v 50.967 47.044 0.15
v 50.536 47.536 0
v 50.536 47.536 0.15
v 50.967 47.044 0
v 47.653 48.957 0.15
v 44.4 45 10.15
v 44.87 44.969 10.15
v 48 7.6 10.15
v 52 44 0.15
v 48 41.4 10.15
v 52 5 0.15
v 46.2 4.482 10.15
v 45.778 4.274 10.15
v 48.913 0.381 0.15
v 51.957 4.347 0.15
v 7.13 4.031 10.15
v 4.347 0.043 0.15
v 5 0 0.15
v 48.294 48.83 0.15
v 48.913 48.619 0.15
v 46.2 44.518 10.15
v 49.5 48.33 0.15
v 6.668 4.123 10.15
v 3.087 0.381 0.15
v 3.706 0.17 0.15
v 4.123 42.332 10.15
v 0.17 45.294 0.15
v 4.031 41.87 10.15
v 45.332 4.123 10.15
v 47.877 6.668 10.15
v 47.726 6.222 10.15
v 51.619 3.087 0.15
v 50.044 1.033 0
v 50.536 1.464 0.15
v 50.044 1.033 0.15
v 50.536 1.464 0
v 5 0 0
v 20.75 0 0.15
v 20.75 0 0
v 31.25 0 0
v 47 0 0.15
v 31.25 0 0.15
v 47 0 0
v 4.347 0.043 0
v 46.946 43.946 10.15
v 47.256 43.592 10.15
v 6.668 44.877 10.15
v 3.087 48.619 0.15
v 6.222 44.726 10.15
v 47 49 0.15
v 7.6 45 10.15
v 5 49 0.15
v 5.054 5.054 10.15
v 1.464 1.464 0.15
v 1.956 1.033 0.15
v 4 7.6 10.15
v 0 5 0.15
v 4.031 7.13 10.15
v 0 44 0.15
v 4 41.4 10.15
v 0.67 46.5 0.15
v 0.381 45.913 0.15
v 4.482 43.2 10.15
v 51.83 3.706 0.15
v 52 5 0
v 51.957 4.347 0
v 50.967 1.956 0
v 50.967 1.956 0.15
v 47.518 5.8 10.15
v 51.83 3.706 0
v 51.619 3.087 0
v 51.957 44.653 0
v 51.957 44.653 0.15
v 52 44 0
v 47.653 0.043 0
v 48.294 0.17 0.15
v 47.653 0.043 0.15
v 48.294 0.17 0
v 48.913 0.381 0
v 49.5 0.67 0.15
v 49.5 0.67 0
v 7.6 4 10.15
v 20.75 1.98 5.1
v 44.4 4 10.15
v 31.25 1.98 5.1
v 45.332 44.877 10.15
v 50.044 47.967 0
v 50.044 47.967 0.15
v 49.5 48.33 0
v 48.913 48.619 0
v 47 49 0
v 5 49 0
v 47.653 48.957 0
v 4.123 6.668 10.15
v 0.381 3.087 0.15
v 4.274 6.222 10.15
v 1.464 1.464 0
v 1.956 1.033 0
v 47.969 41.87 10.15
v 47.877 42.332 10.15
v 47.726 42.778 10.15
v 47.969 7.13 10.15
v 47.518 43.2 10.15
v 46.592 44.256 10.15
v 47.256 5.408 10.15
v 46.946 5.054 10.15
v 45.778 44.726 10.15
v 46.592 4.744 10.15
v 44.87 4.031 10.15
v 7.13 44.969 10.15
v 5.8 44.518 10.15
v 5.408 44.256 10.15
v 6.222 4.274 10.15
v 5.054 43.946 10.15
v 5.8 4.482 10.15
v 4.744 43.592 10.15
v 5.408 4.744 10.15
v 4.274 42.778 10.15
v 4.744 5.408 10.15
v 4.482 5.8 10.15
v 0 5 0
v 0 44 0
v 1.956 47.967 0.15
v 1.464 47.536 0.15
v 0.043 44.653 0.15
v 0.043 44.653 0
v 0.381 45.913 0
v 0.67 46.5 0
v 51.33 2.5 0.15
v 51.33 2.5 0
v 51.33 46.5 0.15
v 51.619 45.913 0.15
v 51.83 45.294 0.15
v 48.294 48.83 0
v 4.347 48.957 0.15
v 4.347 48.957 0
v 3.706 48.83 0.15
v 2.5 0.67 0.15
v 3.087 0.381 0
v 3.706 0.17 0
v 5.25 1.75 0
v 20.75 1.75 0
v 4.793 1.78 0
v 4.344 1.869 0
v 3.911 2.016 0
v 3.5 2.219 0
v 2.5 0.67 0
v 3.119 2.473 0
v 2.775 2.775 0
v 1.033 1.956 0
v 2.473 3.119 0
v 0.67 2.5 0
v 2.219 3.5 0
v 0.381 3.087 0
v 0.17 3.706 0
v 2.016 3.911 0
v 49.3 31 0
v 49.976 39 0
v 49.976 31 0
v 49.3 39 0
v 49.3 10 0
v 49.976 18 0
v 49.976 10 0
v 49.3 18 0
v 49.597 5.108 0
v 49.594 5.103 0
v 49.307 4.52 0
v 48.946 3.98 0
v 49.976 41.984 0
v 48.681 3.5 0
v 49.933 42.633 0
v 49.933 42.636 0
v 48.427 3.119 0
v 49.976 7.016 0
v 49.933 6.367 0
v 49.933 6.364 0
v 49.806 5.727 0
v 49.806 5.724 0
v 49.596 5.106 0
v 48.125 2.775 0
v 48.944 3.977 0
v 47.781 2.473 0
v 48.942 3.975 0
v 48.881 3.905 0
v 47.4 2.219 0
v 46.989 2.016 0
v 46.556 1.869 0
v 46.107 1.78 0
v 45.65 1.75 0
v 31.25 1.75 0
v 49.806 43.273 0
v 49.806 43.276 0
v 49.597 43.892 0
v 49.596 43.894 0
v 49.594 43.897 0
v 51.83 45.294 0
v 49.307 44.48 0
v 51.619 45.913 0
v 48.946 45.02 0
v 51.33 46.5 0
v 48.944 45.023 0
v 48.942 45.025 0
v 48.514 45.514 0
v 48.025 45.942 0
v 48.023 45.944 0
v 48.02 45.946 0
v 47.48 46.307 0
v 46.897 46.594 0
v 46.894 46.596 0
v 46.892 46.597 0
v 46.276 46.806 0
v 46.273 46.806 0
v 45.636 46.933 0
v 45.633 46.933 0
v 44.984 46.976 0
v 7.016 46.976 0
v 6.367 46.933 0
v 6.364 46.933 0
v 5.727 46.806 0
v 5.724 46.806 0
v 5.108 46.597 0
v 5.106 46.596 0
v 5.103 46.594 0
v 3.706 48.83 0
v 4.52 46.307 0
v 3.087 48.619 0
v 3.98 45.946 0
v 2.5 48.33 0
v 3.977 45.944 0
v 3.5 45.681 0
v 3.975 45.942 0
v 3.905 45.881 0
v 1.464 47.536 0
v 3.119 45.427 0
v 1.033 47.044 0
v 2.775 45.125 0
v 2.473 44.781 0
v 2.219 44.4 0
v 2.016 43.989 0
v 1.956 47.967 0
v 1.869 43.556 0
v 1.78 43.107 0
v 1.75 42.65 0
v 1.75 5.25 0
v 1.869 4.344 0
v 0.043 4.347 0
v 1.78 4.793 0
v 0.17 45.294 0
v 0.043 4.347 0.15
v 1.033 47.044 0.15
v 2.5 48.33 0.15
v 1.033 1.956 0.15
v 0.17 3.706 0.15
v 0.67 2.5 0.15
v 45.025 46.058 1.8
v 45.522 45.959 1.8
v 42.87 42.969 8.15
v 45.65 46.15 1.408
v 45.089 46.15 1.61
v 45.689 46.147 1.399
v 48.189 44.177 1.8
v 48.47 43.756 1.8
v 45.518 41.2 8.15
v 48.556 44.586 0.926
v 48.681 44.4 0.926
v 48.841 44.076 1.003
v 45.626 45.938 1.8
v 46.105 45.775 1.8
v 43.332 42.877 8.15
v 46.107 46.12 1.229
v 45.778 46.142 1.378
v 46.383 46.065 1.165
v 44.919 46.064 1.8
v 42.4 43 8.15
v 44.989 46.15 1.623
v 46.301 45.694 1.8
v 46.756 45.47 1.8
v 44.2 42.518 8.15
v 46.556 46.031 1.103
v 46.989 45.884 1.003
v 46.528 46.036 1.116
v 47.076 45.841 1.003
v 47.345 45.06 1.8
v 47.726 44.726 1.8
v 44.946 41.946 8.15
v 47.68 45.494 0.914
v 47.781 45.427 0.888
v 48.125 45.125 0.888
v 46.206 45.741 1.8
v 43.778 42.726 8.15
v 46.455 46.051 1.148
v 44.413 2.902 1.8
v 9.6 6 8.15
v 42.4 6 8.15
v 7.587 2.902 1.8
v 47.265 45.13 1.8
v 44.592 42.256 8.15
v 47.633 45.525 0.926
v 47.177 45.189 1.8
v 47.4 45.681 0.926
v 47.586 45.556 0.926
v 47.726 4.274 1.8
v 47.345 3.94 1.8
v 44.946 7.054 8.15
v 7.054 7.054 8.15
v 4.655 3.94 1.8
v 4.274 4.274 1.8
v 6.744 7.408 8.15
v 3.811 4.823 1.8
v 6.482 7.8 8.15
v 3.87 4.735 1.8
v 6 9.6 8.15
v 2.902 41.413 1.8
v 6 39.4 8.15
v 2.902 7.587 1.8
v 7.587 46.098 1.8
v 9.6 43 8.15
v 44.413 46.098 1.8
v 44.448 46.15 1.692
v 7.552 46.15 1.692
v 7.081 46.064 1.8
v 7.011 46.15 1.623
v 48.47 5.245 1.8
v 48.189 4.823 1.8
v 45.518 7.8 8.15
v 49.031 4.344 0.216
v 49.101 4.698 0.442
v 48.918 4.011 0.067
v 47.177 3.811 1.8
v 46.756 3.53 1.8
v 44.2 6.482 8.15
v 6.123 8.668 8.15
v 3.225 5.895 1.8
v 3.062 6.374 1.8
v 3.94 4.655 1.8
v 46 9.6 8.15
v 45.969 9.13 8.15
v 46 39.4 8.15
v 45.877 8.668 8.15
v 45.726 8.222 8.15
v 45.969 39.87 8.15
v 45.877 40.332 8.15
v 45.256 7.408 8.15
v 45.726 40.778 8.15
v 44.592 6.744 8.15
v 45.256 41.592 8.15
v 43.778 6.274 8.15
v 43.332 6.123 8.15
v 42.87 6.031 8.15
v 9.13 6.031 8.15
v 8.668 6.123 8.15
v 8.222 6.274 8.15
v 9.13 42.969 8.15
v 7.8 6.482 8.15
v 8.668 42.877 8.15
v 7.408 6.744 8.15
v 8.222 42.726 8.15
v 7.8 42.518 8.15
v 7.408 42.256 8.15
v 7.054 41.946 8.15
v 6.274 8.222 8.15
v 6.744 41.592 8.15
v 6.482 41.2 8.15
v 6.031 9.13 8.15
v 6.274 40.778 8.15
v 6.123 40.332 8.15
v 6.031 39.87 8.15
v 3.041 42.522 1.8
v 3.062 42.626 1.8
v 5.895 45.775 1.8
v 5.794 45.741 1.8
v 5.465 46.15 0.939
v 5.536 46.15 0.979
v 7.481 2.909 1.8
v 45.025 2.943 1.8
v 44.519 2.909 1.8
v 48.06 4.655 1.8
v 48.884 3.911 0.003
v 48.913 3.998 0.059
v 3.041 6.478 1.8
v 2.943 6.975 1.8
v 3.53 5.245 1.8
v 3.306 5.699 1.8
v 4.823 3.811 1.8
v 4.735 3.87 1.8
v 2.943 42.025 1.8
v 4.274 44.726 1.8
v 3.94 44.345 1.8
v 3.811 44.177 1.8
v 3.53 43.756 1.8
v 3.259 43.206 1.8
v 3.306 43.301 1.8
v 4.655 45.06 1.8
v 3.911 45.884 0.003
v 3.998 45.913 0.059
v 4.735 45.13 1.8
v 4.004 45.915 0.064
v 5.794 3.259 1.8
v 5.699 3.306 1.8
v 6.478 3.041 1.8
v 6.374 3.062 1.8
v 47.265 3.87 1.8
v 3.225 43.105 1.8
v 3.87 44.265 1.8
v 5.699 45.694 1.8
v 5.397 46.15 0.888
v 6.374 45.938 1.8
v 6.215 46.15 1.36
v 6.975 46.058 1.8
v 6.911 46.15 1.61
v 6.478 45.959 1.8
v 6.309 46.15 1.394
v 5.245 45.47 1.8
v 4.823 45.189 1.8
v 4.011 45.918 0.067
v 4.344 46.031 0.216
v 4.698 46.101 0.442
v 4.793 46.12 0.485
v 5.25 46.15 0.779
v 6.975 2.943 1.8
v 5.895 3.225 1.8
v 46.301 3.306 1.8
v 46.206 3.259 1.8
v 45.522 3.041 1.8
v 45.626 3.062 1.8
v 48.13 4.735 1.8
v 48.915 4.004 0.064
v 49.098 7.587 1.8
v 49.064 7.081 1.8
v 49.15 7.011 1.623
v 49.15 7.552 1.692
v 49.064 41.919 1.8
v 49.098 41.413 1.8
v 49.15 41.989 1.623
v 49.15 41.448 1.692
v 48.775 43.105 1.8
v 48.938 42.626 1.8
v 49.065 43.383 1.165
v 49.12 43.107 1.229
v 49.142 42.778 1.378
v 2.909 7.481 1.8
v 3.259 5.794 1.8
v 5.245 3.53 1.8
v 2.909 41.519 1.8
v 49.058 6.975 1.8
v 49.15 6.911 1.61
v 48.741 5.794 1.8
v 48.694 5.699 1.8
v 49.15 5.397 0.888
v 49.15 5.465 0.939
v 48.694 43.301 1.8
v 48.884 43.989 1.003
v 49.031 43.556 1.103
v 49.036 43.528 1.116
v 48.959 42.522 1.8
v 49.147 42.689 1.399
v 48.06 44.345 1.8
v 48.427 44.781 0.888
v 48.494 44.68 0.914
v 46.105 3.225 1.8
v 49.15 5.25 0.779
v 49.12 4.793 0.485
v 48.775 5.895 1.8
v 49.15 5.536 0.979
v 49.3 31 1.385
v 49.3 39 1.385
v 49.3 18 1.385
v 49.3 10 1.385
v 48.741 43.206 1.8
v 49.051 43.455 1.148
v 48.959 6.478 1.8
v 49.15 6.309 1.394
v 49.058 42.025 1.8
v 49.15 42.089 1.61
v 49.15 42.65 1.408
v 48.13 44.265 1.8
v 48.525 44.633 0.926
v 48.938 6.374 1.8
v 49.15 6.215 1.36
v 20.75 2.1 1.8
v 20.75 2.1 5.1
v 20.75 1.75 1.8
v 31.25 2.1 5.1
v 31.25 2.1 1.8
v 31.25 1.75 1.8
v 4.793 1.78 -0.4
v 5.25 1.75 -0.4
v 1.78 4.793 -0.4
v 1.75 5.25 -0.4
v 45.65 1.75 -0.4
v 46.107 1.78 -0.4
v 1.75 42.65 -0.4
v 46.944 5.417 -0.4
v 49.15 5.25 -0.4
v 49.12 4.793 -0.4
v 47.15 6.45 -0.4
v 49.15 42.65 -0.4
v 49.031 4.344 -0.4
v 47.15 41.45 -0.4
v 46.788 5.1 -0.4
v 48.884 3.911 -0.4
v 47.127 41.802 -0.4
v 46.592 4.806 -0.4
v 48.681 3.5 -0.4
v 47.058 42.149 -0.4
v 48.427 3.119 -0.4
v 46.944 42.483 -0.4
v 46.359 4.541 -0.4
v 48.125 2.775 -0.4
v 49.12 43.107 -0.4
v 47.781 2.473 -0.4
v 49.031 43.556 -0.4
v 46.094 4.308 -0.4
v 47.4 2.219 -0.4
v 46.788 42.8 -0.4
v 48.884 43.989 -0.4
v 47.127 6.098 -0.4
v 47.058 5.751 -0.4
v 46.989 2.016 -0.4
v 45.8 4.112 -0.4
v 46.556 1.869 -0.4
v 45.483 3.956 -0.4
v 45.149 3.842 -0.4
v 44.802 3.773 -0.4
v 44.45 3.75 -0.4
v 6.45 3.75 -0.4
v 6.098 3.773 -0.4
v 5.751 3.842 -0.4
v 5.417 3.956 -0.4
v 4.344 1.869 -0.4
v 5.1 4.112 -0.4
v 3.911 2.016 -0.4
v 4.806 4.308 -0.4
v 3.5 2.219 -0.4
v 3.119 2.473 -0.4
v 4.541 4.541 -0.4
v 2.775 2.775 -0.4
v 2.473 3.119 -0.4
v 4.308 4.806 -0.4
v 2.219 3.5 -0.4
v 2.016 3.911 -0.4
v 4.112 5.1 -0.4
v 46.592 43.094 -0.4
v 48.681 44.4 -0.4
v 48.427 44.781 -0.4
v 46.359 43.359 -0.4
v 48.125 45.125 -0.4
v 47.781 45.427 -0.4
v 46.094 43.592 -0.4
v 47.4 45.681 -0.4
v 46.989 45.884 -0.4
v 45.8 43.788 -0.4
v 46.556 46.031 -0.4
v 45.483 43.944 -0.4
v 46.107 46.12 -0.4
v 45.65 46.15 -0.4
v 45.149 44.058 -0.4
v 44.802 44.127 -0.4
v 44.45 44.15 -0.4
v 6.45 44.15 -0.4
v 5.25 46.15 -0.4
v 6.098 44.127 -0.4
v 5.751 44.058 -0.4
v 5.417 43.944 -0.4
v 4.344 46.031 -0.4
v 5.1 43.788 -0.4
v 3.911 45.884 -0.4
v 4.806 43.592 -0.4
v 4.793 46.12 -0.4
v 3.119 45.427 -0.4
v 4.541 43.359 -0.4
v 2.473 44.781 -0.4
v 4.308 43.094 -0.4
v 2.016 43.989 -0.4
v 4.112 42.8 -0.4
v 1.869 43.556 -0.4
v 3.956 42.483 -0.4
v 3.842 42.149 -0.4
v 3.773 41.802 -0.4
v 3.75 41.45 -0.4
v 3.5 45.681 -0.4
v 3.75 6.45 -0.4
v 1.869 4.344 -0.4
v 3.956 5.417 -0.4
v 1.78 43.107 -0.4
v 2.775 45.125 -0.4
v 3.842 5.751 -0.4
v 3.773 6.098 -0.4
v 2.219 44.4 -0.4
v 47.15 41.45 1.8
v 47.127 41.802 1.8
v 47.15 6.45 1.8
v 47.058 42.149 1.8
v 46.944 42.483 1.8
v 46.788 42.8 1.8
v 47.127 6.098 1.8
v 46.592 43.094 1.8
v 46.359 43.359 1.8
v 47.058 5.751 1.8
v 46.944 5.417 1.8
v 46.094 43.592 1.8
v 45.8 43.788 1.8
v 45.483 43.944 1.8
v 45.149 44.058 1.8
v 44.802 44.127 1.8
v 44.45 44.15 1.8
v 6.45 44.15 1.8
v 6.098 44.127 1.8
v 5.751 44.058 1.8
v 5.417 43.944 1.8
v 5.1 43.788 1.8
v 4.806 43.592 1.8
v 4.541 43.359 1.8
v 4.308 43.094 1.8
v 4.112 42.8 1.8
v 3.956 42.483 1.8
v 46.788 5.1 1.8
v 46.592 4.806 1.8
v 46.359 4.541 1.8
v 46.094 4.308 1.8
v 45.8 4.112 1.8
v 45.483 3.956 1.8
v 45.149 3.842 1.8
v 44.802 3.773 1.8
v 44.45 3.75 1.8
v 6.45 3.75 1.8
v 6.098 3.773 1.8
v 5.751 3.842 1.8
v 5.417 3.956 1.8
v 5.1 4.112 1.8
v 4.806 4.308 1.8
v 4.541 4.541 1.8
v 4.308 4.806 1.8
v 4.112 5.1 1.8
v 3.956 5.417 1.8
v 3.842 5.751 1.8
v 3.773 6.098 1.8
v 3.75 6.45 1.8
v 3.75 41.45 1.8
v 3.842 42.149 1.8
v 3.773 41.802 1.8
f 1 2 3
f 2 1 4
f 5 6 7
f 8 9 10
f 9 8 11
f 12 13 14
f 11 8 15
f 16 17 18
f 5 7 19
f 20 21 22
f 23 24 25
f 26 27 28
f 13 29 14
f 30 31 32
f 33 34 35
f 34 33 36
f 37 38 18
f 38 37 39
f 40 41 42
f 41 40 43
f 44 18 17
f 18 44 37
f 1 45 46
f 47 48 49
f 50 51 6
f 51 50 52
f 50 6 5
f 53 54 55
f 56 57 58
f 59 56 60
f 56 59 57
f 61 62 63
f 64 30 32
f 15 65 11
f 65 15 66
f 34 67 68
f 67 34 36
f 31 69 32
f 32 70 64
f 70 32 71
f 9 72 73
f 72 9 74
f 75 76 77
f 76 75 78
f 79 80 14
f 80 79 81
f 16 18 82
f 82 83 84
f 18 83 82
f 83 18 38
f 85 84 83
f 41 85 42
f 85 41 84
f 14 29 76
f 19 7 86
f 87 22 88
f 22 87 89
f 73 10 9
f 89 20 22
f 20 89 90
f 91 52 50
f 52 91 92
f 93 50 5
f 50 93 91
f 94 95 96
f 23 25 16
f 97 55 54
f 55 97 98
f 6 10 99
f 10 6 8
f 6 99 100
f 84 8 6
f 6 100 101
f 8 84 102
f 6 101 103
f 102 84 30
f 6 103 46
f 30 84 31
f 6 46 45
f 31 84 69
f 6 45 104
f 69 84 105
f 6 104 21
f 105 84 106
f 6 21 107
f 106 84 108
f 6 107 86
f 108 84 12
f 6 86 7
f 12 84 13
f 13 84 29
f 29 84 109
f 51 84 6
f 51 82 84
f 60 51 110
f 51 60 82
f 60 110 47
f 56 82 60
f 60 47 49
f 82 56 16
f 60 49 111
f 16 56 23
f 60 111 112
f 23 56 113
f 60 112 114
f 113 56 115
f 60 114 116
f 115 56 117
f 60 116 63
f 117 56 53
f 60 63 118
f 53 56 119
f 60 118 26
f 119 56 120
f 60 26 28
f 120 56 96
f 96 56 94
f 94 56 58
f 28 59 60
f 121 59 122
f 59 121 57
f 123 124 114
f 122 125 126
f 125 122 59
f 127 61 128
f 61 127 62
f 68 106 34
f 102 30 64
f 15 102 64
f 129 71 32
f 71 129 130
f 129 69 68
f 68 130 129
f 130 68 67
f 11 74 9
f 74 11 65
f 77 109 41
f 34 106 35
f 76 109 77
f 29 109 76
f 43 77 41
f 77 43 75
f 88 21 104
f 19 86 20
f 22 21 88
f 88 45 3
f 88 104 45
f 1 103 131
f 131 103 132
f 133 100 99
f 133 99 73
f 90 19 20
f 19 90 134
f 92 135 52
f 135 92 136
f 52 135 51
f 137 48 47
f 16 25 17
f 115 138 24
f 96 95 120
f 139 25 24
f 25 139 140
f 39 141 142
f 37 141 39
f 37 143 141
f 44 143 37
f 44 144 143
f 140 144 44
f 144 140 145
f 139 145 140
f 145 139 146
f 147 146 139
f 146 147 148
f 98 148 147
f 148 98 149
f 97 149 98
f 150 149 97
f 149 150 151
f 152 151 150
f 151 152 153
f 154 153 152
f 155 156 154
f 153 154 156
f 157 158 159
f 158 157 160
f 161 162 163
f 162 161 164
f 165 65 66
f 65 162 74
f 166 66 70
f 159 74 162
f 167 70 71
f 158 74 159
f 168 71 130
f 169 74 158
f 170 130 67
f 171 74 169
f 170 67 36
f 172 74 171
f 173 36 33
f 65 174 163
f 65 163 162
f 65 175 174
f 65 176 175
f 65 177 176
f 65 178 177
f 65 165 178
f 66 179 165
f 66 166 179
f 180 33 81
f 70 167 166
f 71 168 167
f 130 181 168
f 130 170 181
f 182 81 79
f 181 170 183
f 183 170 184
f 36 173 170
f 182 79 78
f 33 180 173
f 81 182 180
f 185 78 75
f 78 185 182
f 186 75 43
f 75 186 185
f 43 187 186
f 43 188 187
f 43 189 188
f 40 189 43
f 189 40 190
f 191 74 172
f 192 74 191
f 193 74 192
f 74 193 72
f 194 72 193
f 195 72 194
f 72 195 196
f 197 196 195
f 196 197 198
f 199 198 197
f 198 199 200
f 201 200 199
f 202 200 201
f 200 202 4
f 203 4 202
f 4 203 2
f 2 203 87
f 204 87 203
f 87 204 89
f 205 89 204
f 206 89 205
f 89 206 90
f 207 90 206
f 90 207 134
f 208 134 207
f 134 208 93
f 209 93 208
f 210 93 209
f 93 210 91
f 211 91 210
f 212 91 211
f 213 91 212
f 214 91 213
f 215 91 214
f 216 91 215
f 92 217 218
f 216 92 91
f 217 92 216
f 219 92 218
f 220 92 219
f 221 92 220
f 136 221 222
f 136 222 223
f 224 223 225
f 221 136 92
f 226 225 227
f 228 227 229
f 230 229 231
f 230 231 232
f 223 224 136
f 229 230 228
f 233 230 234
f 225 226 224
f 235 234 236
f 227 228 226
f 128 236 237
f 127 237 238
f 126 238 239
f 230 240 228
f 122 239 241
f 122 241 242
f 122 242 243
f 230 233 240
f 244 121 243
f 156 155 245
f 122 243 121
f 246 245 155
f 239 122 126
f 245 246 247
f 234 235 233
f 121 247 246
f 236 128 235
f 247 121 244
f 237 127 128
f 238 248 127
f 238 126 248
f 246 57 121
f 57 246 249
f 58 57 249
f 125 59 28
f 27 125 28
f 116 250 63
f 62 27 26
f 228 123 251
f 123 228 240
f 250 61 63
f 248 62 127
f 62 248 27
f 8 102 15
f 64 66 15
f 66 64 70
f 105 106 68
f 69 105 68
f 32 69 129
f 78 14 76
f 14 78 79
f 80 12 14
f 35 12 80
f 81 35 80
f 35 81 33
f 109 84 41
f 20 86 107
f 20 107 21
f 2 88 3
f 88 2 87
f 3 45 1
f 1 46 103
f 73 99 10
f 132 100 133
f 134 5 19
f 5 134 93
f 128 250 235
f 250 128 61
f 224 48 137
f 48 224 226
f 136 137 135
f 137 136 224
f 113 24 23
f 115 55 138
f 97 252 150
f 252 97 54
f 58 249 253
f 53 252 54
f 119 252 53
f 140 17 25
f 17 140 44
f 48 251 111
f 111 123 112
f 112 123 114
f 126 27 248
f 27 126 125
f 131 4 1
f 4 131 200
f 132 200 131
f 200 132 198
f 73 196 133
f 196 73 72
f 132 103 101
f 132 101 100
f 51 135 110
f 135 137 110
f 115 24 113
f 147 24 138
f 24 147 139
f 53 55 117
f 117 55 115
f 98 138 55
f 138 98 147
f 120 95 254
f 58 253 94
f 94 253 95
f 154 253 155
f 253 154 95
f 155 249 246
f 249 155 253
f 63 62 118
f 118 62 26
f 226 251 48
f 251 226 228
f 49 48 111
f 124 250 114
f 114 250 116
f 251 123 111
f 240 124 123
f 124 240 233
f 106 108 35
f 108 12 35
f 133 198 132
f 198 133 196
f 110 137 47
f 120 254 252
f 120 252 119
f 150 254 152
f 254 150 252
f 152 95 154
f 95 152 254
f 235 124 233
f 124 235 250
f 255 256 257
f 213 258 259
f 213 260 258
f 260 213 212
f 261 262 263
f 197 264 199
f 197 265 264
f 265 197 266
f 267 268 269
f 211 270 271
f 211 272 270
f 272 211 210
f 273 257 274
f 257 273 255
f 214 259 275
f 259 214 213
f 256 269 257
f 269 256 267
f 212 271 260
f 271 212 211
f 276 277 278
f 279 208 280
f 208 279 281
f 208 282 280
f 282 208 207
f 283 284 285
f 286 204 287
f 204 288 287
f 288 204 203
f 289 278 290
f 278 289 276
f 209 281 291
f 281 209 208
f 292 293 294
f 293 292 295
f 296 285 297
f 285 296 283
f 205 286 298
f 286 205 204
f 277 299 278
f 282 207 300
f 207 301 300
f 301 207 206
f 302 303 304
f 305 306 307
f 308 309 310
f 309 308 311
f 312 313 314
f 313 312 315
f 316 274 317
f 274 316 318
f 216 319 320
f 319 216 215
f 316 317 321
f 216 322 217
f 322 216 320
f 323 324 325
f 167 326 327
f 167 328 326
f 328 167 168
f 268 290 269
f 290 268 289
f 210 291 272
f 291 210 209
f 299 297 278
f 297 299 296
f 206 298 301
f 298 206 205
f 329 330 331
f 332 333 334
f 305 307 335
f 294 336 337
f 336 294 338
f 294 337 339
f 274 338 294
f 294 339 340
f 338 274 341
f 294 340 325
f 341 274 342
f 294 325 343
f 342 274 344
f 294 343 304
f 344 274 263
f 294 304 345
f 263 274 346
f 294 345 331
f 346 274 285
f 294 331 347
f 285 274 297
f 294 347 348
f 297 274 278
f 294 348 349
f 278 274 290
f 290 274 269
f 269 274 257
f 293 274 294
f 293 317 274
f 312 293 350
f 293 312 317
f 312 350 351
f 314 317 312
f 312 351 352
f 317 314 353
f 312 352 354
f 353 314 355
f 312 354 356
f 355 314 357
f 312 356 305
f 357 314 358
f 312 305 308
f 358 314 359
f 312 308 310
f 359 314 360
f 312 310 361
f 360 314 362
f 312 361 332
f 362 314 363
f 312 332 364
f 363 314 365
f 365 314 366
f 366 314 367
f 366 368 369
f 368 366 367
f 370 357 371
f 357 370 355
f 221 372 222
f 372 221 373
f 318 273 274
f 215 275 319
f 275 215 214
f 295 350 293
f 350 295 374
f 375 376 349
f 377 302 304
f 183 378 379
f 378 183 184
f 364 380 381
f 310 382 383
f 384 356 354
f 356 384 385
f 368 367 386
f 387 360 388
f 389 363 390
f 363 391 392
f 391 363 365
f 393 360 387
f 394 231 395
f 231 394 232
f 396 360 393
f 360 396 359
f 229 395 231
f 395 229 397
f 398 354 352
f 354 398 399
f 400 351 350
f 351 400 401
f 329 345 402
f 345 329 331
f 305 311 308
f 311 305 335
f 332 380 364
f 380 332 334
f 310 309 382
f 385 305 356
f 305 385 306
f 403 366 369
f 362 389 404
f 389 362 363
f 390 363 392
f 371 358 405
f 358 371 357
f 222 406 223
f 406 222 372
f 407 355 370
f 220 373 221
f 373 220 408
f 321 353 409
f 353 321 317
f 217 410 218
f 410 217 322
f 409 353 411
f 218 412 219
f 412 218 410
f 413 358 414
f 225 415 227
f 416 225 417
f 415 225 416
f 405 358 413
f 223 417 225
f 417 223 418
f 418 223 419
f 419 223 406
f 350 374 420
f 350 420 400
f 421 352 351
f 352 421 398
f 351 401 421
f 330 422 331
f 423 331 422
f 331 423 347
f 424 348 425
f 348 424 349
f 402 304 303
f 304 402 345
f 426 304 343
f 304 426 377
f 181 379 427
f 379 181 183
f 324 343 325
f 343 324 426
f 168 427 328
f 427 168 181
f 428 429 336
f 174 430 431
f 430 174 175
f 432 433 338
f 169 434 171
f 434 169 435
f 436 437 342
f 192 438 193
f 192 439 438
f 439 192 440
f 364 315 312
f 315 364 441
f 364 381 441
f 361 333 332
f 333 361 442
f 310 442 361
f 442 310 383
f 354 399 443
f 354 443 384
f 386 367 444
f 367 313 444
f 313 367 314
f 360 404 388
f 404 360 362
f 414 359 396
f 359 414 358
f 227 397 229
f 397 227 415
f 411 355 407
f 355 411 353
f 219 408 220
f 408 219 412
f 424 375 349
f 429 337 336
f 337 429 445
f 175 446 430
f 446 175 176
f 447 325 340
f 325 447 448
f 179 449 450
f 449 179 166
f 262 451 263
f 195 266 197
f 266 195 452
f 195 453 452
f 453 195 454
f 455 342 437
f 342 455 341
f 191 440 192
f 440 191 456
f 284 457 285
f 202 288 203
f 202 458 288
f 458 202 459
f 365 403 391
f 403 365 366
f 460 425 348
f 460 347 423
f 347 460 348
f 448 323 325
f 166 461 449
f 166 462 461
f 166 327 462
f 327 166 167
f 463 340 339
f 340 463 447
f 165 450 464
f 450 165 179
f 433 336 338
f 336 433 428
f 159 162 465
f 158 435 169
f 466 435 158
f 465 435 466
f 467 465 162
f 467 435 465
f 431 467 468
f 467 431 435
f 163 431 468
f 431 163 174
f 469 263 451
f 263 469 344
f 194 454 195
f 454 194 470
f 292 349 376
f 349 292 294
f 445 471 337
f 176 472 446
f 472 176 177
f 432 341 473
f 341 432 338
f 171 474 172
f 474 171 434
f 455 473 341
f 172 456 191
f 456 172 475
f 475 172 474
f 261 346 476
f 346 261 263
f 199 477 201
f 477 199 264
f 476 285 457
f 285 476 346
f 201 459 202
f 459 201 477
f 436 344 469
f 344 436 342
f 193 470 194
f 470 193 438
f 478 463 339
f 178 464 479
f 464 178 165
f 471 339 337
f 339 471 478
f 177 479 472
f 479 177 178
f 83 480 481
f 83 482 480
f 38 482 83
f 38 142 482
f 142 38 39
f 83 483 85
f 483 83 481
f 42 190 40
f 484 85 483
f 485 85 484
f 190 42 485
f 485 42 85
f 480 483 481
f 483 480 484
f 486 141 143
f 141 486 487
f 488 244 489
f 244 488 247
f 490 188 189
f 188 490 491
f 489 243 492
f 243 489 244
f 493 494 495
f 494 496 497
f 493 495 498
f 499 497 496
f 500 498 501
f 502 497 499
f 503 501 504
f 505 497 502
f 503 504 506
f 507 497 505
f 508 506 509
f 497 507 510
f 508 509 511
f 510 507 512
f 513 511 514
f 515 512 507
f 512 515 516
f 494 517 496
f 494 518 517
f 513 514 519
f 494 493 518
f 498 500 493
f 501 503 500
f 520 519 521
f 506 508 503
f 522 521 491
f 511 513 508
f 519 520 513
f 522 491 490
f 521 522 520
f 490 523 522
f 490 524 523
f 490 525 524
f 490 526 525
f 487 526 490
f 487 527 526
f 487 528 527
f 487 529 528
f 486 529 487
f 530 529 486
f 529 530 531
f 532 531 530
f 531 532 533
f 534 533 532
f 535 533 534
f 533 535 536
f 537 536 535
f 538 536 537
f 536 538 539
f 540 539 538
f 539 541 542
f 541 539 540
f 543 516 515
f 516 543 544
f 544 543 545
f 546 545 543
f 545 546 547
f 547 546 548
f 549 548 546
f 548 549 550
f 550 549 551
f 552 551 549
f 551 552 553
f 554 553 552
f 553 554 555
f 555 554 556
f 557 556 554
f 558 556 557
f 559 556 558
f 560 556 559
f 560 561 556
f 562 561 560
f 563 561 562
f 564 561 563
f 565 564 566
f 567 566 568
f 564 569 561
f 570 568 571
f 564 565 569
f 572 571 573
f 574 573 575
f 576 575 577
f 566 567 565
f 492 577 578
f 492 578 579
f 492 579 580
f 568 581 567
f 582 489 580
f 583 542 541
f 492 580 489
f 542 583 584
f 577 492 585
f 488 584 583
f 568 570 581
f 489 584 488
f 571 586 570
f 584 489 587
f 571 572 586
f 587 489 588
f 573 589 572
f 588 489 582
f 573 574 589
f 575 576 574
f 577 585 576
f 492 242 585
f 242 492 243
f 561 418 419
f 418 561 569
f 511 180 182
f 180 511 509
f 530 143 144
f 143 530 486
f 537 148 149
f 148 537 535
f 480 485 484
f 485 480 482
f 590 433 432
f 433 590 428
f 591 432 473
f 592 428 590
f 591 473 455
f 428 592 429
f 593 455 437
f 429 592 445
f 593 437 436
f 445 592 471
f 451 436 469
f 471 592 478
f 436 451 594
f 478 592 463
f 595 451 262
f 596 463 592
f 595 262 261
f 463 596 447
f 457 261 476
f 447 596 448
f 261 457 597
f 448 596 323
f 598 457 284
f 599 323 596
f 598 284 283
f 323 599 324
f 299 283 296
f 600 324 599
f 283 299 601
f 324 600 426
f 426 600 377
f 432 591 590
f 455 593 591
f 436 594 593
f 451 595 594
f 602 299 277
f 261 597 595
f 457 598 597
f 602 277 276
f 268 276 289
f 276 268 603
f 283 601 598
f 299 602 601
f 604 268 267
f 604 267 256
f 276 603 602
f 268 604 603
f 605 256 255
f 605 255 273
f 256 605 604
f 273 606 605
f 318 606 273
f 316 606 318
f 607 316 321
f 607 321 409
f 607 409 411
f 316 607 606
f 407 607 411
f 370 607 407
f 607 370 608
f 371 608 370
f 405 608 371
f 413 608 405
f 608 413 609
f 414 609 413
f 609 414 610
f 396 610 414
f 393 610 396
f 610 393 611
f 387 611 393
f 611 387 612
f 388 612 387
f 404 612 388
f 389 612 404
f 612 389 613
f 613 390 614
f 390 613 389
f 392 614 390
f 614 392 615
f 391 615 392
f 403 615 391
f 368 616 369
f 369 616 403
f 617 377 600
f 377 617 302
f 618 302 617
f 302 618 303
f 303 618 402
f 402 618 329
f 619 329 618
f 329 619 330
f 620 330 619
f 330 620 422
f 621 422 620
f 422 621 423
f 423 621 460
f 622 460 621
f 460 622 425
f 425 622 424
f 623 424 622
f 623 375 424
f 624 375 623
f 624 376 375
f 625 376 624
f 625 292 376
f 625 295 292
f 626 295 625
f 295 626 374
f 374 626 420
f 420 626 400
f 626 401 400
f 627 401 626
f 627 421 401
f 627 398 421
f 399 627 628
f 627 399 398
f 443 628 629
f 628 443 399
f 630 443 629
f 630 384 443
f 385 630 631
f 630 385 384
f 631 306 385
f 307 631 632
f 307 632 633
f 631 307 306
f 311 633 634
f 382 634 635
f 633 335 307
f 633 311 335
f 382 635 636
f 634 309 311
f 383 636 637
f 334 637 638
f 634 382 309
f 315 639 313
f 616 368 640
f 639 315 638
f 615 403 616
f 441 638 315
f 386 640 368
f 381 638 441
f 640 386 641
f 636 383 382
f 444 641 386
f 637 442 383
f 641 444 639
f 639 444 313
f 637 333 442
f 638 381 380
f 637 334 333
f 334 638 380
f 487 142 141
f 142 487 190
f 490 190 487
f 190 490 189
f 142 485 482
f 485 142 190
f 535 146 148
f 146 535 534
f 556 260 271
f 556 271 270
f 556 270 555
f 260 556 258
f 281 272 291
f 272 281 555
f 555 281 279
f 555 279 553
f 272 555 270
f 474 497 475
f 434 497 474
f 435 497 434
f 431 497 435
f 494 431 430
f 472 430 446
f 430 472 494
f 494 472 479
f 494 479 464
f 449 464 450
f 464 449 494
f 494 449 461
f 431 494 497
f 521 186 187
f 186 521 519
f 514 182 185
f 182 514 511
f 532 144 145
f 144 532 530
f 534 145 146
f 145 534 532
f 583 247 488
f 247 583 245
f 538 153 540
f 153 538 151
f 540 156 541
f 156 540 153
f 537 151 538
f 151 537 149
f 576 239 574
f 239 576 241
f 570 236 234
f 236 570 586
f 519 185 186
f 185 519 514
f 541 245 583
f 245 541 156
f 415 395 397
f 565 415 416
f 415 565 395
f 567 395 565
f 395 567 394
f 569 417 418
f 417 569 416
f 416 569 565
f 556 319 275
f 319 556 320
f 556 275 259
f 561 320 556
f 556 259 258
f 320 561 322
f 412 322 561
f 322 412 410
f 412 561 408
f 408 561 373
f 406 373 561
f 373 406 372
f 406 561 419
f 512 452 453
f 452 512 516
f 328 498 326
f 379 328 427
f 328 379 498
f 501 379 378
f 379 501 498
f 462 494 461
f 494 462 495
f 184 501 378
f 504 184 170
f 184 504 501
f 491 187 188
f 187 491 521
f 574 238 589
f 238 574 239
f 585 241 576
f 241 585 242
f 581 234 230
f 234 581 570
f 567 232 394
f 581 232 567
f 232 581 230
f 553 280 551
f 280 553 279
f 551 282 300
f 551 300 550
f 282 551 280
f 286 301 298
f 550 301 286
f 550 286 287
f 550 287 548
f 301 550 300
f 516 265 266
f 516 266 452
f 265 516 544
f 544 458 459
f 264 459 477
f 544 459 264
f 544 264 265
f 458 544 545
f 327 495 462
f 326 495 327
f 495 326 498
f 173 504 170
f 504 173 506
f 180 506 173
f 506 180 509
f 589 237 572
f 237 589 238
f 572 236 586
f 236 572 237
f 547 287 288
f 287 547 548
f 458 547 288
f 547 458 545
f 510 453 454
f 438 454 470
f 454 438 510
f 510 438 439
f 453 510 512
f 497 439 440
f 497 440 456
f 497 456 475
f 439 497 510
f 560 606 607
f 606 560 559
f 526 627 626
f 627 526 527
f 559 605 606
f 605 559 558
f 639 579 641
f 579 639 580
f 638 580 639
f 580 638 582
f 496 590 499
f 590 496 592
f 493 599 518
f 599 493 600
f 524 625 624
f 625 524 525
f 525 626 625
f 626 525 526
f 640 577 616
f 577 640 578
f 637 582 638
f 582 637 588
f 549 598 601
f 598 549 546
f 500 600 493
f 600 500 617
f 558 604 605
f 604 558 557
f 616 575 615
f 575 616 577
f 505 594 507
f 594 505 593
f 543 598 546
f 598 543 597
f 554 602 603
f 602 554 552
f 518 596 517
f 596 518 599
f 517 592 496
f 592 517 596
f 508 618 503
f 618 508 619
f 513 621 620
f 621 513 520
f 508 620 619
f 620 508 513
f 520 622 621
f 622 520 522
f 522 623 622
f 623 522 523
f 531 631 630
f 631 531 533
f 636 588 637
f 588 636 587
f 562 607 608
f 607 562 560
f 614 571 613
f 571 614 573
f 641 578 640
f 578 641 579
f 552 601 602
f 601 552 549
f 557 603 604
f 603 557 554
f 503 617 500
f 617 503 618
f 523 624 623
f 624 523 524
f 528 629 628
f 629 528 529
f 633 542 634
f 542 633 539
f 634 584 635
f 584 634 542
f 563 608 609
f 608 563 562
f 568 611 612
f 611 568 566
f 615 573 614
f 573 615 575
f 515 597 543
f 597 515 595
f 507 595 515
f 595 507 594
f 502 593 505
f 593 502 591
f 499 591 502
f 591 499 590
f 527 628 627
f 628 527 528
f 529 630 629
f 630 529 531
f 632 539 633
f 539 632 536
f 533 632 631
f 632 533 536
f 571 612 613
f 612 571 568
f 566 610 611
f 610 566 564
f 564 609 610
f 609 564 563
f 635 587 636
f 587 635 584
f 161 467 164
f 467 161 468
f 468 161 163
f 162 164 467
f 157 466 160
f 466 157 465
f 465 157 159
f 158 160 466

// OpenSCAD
// Plant Buddy - Back Shell
// Nico-style rounded dome back with snap lip, vent slots, and cable exit.

$fn = 48;

wall = 2.0;
corner_r = 5;
lip_h = 2.2;
lip_inset = 0.30;
lip_shell_overlap_z = -0.4;
lip_shell_overlap_xy = 0.55;
eps = 0.2;

inner_w = 48.0;
inner_h = 45.0;

ext_w = inner_w + wall * 2;
ext_h = inner_h + wall * 2;

dome_h = 10.0;

usb_w = 10.5;
usb_h = 4.2;

module rounded_box(w, h, d, r) {
    hull() {
        for (x = [r, w - r])
            for (y = [r, h - r])
                translate([x, y, 0])
                    cylinder(r = r, h = d);
    }
}

module dome_back(w, h, rise) {
    hull() {
        rounded_box(w, h, 0.15, corner_r);
        translate([4, 4, rise])
            rounded_box(w - 8, h - 8, 0.15, corner_r - 1.4);
    }
}

difference() {
    // Outer skin.
    dome_back(ext_w, ext_h, dome_h);

    // Hollow interior shell.
    translate([wall, wall, -eps])
        dome_back(ext_w - wall * 2, ext_h - wall * 2, dome_h - wall + eps);

    // USB opening alignment.
    translate([ext_w / 2 - usb_w / 2, -0.1, -0.1])
        cube([usb_w, wall + 0.2, usb_h + 1.0]);

    // Ventilation slots near top.
    for (i = [0:4])
        translate([ext_w / 2 - 10 + i * 5, ext_h - wall - 0.1, dome_h - 2])
            rotate([-90, 0, 0])
                cylinder(r = 1.0, h = wall + 0.2);
}

// Snap-fit lip that goes inside the front shell.
translate([wall + lip_inset - lip_shell_overlap_xy, wall + lip_inset - lip_shell_overlap_xy, lip_shell_overlap_z])
difference() {
    rounded_box(inner_w - lip_inset * 2, inner_h - lip_inset * 2, lip_h, corner_r - 1.5);
    translate([wall, wall, -0.1])
        rounded_box(inner_w - lip_inset * 2 - wall * 2, inner_h - lip_inset * 2 - wall * 2, lip_h + 0.2, corner_r - 2.3);
}

// Bridge tabs that tie the lip to shell rim (prevents multi-volume STL export).
translate([wall - 0.2, wall + 8, 0]) cube([0.9, 8, 1.8]);
translate([wall - 0.2, ext_h - wall - 16, 0]) cube([0.9, 8, 1.8]);
translate([ext_w - wall - 0.7, wall + 8, 0]) cube([0.9, 8, 1.8]);
translate([ext_w - wall - 0.7, ext_h - wall - 16, 0]) cube([0.9, 8, 1.8]);
